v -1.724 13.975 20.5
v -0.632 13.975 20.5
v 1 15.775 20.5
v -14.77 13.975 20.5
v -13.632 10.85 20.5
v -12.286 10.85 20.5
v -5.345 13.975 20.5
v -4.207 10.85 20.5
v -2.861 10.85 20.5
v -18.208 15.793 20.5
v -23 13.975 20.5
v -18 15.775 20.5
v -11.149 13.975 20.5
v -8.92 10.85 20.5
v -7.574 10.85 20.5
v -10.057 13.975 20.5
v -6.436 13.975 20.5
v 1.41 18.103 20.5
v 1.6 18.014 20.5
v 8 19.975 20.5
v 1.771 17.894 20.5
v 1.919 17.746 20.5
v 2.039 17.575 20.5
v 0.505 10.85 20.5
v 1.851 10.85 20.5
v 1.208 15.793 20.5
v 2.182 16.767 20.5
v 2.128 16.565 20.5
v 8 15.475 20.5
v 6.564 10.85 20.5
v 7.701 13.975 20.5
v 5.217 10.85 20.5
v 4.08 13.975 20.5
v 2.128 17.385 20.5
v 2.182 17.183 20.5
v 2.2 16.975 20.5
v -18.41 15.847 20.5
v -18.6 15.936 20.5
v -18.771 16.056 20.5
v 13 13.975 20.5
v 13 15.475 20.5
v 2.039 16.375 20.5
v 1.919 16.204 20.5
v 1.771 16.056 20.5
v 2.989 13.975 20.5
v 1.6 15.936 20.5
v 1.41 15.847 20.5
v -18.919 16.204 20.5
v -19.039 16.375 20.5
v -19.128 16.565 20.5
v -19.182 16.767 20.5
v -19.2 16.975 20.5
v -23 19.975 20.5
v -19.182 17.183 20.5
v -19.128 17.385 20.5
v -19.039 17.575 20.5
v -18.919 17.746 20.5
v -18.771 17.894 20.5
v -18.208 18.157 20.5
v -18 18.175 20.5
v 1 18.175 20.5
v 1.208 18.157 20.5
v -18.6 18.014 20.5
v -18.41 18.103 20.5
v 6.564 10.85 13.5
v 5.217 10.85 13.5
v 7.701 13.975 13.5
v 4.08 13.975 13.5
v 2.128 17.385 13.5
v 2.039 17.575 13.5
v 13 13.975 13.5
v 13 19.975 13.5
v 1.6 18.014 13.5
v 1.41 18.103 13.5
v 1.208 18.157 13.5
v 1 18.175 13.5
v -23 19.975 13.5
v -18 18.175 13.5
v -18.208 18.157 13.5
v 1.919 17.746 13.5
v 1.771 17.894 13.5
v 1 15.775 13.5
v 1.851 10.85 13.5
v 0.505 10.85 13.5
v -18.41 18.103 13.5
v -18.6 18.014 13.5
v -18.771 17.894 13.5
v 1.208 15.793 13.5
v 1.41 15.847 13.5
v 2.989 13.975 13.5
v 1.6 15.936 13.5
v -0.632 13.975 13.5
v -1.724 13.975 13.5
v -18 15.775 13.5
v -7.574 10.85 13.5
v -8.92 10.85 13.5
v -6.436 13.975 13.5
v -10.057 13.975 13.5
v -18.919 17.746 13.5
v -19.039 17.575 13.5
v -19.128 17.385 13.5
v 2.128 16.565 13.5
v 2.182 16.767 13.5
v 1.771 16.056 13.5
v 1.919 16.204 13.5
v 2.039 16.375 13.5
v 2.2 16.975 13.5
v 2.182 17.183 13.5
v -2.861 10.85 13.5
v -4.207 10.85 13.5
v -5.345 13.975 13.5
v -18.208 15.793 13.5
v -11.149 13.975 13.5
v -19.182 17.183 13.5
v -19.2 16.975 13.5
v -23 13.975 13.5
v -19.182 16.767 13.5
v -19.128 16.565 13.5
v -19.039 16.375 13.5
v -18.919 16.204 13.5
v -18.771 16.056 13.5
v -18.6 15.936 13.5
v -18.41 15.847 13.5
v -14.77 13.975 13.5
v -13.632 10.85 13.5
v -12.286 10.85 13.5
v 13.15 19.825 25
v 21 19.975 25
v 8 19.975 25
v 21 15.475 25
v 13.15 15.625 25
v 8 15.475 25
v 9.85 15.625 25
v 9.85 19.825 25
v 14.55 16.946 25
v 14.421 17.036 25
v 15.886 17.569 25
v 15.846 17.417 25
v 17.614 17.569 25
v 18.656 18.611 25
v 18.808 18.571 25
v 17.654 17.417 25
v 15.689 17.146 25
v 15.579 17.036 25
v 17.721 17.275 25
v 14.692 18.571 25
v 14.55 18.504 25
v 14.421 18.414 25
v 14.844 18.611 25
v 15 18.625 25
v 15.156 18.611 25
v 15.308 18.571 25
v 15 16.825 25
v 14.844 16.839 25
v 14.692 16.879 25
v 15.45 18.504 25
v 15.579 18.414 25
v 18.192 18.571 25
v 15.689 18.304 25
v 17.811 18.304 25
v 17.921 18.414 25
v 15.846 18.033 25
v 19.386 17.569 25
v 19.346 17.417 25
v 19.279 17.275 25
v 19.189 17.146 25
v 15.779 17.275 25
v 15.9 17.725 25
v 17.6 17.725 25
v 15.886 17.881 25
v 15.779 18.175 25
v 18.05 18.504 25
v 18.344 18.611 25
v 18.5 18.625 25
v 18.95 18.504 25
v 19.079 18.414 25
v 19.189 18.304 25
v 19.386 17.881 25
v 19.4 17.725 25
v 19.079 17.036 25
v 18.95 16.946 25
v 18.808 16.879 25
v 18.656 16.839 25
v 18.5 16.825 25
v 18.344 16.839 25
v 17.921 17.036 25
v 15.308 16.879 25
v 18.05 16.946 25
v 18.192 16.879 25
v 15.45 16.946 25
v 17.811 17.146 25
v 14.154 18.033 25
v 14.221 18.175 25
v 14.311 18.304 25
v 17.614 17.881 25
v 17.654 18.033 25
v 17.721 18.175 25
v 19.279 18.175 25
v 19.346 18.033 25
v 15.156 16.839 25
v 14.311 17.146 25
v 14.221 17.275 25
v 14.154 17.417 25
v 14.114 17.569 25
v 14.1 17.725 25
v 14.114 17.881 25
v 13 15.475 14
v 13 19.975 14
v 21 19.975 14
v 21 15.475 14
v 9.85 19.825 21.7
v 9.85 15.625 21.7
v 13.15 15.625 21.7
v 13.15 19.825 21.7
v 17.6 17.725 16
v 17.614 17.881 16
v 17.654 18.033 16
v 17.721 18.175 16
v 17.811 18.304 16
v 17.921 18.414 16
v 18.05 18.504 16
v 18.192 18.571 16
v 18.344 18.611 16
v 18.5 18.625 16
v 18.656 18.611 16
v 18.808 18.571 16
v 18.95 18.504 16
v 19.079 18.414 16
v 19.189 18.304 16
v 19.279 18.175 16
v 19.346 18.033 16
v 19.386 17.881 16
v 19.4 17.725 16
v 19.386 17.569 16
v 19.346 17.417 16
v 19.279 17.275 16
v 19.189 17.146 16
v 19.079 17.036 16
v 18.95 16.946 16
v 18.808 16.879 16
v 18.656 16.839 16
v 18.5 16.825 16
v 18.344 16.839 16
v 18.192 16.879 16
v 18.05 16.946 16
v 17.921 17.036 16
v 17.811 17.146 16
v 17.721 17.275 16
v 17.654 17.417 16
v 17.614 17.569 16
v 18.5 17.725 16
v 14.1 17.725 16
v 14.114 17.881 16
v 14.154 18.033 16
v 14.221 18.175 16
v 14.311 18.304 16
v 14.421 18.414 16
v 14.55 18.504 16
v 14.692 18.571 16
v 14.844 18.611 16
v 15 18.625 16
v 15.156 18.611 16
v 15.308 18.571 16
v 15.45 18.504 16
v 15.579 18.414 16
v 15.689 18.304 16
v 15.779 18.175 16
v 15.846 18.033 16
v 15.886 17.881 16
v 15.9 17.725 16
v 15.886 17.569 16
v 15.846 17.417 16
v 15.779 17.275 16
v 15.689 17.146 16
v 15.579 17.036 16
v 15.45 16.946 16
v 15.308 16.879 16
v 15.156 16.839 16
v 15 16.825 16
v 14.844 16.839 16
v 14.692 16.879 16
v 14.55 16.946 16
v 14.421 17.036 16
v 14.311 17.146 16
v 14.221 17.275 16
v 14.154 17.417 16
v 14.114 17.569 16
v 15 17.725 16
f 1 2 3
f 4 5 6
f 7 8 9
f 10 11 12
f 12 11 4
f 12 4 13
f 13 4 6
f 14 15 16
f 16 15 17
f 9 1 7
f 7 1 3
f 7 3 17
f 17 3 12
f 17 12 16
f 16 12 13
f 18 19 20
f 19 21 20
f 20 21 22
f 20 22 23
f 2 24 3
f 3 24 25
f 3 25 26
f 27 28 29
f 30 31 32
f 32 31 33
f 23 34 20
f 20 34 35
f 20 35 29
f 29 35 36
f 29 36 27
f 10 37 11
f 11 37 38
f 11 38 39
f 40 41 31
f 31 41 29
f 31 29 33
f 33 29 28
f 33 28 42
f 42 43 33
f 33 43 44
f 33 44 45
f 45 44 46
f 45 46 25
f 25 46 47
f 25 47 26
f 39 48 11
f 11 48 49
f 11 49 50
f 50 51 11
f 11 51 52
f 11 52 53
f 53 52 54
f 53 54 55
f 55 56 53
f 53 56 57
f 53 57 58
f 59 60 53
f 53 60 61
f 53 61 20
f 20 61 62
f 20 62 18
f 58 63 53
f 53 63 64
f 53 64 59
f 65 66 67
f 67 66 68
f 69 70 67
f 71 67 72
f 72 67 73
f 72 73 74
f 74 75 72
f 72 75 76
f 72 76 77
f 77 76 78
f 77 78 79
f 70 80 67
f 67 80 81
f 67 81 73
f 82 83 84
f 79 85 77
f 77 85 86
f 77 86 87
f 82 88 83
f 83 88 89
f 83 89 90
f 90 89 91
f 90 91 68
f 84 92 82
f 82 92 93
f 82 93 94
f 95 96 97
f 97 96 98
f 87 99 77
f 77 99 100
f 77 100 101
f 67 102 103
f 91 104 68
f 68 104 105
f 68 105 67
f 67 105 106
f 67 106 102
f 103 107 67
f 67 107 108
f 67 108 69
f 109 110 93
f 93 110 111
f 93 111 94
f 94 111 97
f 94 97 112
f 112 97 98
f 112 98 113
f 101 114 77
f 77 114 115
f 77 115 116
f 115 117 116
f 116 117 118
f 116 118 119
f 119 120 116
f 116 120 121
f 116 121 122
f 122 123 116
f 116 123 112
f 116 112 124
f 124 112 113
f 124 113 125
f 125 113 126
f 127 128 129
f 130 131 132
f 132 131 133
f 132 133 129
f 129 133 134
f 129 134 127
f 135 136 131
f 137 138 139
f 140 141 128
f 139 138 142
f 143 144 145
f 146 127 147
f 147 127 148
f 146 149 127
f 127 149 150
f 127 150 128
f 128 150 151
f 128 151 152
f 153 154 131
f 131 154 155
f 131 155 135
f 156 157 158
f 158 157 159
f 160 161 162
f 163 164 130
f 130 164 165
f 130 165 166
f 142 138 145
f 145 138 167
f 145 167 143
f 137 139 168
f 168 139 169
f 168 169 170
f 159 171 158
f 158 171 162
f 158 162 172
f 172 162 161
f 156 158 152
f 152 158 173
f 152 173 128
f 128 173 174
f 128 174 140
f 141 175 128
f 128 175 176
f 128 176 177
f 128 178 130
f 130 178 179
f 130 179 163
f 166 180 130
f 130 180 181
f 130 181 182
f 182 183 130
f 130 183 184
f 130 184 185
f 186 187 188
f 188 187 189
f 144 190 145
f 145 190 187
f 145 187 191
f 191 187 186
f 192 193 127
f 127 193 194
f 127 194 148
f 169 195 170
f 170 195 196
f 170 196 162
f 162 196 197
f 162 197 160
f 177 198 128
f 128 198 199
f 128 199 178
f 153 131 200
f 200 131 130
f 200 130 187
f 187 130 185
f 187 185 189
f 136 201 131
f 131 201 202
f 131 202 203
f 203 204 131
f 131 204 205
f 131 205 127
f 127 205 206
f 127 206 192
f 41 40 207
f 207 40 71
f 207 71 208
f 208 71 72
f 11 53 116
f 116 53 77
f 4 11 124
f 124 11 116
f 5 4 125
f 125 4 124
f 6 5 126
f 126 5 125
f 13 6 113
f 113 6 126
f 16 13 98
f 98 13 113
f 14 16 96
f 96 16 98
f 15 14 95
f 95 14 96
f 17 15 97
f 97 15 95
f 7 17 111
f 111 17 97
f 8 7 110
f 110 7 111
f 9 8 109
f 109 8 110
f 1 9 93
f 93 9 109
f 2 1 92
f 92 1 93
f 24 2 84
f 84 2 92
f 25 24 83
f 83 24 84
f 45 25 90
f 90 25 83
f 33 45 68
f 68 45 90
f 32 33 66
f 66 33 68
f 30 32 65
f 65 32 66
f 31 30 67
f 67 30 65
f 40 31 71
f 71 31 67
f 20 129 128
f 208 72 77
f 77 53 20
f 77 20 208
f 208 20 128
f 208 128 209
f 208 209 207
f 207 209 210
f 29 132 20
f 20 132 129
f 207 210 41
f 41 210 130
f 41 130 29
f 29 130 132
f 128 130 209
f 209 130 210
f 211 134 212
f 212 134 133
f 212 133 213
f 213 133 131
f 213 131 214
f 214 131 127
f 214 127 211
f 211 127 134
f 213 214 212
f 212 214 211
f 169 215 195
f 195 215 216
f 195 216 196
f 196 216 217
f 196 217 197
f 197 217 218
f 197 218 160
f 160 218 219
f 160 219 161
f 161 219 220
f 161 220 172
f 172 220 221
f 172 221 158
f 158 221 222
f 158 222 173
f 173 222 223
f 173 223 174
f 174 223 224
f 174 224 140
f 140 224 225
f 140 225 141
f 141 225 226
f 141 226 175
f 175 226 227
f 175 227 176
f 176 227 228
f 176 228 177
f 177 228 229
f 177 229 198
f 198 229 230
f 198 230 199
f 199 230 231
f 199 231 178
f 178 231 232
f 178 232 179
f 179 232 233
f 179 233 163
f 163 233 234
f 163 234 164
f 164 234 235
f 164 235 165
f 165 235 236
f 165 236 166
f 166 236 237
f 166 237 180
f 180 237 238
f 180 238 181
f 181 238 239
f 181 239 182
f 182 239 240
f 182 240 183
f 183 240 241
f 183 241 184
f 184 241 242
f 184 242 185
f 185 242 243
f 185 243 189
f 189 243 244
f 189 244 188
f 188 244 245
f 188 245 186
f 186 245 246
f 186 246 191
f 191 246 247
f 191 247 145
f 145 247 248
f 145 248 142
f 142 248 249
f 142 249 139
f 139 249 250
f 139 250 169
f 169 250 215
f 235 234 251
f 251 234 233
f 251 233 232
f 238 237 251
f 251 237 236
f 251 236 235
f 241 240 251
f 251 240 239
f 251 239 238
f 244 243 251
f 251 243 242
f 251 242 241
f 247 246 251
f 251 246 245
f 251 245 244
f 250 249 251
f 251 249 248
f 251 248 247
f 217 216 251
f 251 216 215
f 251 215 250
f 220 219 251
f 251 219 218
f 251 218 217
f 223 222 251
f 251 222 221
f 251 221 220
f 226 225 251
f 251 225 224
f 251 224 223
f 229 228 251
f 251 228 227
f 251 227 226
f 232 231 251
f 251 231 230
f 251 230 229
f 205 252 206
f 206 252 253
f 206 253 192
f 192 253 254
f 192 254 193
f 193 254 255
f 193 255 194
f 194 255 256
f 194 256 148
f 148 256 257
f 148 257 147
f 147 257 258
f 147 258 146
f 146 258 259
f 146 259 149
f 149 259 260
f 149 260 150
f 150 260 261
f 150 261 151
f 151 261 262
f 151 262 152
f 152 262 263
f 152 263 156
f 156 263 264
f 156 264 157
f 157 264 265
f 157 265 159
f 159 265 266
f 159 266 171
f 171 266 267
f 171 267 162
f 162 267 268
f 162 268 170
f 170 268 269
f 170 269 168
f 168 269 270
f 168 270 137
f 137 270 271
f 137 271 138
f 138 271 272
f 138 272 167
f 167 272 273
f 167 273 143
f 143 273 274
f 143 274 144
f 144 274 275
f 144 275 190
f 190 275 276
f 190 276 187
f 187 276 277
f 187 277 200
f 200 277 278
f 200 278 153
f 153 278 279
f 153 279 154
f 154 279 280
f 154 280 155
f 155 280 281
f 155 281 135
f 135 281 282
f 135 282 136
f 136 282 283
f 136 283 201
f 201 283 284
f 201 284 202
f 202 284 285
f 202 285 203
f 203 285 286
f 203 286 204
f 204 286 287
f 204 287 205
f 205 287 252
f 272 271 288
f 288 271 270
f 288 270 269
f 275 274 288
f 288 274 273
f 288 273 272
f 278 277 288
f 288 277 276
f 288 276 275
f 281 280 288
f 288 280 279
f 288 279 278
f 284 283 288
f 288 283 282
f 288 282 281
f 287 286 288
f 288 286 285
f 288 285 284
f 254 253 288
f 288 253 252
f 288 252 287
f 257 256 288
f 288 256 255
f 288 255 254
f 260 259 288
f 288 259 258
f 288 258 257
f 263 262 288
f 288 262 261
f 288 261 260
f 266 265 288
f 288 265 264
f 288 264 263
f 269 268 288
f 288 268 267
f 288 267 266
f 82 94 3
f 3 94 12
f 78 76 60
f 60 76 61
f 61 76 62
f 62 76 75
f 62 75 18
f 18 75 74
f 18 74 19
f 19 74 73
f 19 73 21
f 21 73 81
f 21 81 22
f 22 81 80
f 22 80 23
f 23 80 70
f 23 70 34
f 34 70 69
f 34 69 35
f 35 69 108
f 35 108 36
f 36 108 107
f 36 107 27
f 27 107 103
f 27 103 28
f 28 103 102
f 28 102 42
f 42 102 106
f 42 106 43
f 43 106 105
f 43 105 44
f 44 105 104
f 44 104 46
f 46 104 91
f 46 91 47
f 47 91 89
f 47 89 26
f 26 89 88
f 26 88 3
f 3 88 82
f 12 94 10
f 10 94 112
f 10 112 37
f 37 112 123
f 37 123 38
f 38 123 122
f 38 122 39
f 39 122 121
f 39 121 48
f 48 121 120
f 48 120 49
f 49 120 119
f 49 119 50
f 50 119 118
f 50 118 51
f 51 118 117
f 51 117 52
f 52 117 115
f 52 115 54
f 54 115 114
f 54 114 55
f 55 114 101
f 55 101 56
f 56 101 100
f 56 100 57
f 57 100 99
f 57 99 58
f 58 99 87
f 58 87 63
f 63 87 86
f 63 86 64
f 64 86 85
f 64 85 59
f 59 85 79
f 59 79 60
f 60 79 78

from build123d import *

# Parameters (mm, degrees)
BOSS_EXTRUDE1_START     = 13.5
BOSS_EXTRUDE1_DEPTH     = 7
BOSS_EXTRUDE2_START     = 14
SKETCH2_W               = 13
SKETCH2_H               = 4.5
BOSS_EXTRUDE2_DEPTH     = 11
CUT_EXTRUDE1_START      = 21.7
SKETCH3_W               = 3.3
SKETCH3_H               = 4.2
CUT_EXTRUDE1_DEPTH      = 3.4
CUT_EXTRUDE2_START      = 16
SKETCH4_R               = 0.9
CUT_EXTRUDE2_DEPTH      = 9.1
CUT_EXTRUDE3_DEPTH      = 40.40812892
CUT_EXTRUDE3_DEPTH_BACK = 40.40812892
SKETCH5_W               = 19
SKETCH5_H               = 2.4
CUT_EXTRUDE4_DEPTH      = 40.40812892
CUT_EXTRUDE4_DEPTH_BACK = 40.40812892
SKETCH6_R               = 1.2


with BuildPart() as part:
    # Sketch1 → Boss-Extrude1 (new body)
    with BuildSketch(Plane.XY.offset(BOSS_EXTRUDE1_START)):
        Polygon((-23, 19.975), (13, 19.975), (13, 13.975), (7.70102766, 13.975), (6.563620678, 10.85), (5.217351773, 10.85), (4.079944791, 13.975), (2.988638679, 13.975), (1.851231697, 10.85), (0.504962793, 10.85), (-0.632444189, 13.975), (-1.723750301, 13.975), (-2.861157283, 10.85), (-4.207426188, 10.85), (-5.34483317, 13.975), (-6.436139281, 13.975), (-7.573546263, 10.85), (-8.919815168, 10.85), (-10.05722215, 13.975), (-11.148528262, 13.975), (-12.285935244, 10.85), (-13.632204148, 10.85), (-14.76961113, 13.975), (-23, 13.975), align=None)
    extrude(amount=BOSS_EXTRUDE1_DEPTH)

    # Sketch2 → Boss-Extrude2 (add)
    with BuildSketch(Plane.XY.offset(BOSS_EXTRUDE2_START)):
        with Locations((14.5, 17.725)):
            Rectangle(SKETCH2_W, SKETCH2_H)
    extrude(amount=BOSS_EXTRUDE2_DEPTH)

    # Sketch3 → Cut-Extrude1 (cut)
    with BuildSketch(Plane.XY.offset(CUT_EXTRUDE1_START)):
        with Locations((11.5, 17.725)):
            Rectangle(SKETCH3_W, SKETCH3_H)
    extrude(amount=CUT_EXTRUDE1_DEPTH, mode=Mode.SUBTRACT)

    # Sketch4 → Cut-Extrude2 (cut)
    with BuildSketch(Plane.XY.offset(CUT_EXTRUDE2_START)):
        with Locations((15, 17.725)):
            Circle(SKETCH4_R)
        with Locations((18.5, 17.725)):
            Circle(SKETCH4_R)
    extrude(amount=CUT_EXTRUDE2_DEPTH, mode=Mode.SUBTRACT)

    # Sketch5 → Cut-Extrude3 (cut, two sides: drawn at the far end of the back side and taken through both)
    with BuildSketch(Plane.XY.offset(-CUT_EXTRUDE3_DEPTH_BACK)):
        with Locations((-8.5, 16.975)):
            Rectangle(SKETCH5_W, SKETCH5_H)
    extrude(amount=CUT_EXTRUDE3_DEPTH + CUT_EXTRUDE3_DEPTH_BACK, mode=Mode.SUBTRACT)

    # Sketch6 → Cut-Extrude4 (cut, two sides: drawn at the far end of the back side and taken through both)
    with BuildSketch(Plane.XY.offset(-CUT_EXTRUDE4_DEPTH_BACK)):
        with Locations((-18, 16.975)):
            Circle(SKETCH6_R)
        with Locations((1, 16.975)):
            Circle(SKETCH6_R)
    extrude(amount=CUT_EXTRUDE4_DEPTH + CUT_EXTRUDE4_DEPTH_BACK, mode=Mode.SUBTRACT)


solid = part.part
